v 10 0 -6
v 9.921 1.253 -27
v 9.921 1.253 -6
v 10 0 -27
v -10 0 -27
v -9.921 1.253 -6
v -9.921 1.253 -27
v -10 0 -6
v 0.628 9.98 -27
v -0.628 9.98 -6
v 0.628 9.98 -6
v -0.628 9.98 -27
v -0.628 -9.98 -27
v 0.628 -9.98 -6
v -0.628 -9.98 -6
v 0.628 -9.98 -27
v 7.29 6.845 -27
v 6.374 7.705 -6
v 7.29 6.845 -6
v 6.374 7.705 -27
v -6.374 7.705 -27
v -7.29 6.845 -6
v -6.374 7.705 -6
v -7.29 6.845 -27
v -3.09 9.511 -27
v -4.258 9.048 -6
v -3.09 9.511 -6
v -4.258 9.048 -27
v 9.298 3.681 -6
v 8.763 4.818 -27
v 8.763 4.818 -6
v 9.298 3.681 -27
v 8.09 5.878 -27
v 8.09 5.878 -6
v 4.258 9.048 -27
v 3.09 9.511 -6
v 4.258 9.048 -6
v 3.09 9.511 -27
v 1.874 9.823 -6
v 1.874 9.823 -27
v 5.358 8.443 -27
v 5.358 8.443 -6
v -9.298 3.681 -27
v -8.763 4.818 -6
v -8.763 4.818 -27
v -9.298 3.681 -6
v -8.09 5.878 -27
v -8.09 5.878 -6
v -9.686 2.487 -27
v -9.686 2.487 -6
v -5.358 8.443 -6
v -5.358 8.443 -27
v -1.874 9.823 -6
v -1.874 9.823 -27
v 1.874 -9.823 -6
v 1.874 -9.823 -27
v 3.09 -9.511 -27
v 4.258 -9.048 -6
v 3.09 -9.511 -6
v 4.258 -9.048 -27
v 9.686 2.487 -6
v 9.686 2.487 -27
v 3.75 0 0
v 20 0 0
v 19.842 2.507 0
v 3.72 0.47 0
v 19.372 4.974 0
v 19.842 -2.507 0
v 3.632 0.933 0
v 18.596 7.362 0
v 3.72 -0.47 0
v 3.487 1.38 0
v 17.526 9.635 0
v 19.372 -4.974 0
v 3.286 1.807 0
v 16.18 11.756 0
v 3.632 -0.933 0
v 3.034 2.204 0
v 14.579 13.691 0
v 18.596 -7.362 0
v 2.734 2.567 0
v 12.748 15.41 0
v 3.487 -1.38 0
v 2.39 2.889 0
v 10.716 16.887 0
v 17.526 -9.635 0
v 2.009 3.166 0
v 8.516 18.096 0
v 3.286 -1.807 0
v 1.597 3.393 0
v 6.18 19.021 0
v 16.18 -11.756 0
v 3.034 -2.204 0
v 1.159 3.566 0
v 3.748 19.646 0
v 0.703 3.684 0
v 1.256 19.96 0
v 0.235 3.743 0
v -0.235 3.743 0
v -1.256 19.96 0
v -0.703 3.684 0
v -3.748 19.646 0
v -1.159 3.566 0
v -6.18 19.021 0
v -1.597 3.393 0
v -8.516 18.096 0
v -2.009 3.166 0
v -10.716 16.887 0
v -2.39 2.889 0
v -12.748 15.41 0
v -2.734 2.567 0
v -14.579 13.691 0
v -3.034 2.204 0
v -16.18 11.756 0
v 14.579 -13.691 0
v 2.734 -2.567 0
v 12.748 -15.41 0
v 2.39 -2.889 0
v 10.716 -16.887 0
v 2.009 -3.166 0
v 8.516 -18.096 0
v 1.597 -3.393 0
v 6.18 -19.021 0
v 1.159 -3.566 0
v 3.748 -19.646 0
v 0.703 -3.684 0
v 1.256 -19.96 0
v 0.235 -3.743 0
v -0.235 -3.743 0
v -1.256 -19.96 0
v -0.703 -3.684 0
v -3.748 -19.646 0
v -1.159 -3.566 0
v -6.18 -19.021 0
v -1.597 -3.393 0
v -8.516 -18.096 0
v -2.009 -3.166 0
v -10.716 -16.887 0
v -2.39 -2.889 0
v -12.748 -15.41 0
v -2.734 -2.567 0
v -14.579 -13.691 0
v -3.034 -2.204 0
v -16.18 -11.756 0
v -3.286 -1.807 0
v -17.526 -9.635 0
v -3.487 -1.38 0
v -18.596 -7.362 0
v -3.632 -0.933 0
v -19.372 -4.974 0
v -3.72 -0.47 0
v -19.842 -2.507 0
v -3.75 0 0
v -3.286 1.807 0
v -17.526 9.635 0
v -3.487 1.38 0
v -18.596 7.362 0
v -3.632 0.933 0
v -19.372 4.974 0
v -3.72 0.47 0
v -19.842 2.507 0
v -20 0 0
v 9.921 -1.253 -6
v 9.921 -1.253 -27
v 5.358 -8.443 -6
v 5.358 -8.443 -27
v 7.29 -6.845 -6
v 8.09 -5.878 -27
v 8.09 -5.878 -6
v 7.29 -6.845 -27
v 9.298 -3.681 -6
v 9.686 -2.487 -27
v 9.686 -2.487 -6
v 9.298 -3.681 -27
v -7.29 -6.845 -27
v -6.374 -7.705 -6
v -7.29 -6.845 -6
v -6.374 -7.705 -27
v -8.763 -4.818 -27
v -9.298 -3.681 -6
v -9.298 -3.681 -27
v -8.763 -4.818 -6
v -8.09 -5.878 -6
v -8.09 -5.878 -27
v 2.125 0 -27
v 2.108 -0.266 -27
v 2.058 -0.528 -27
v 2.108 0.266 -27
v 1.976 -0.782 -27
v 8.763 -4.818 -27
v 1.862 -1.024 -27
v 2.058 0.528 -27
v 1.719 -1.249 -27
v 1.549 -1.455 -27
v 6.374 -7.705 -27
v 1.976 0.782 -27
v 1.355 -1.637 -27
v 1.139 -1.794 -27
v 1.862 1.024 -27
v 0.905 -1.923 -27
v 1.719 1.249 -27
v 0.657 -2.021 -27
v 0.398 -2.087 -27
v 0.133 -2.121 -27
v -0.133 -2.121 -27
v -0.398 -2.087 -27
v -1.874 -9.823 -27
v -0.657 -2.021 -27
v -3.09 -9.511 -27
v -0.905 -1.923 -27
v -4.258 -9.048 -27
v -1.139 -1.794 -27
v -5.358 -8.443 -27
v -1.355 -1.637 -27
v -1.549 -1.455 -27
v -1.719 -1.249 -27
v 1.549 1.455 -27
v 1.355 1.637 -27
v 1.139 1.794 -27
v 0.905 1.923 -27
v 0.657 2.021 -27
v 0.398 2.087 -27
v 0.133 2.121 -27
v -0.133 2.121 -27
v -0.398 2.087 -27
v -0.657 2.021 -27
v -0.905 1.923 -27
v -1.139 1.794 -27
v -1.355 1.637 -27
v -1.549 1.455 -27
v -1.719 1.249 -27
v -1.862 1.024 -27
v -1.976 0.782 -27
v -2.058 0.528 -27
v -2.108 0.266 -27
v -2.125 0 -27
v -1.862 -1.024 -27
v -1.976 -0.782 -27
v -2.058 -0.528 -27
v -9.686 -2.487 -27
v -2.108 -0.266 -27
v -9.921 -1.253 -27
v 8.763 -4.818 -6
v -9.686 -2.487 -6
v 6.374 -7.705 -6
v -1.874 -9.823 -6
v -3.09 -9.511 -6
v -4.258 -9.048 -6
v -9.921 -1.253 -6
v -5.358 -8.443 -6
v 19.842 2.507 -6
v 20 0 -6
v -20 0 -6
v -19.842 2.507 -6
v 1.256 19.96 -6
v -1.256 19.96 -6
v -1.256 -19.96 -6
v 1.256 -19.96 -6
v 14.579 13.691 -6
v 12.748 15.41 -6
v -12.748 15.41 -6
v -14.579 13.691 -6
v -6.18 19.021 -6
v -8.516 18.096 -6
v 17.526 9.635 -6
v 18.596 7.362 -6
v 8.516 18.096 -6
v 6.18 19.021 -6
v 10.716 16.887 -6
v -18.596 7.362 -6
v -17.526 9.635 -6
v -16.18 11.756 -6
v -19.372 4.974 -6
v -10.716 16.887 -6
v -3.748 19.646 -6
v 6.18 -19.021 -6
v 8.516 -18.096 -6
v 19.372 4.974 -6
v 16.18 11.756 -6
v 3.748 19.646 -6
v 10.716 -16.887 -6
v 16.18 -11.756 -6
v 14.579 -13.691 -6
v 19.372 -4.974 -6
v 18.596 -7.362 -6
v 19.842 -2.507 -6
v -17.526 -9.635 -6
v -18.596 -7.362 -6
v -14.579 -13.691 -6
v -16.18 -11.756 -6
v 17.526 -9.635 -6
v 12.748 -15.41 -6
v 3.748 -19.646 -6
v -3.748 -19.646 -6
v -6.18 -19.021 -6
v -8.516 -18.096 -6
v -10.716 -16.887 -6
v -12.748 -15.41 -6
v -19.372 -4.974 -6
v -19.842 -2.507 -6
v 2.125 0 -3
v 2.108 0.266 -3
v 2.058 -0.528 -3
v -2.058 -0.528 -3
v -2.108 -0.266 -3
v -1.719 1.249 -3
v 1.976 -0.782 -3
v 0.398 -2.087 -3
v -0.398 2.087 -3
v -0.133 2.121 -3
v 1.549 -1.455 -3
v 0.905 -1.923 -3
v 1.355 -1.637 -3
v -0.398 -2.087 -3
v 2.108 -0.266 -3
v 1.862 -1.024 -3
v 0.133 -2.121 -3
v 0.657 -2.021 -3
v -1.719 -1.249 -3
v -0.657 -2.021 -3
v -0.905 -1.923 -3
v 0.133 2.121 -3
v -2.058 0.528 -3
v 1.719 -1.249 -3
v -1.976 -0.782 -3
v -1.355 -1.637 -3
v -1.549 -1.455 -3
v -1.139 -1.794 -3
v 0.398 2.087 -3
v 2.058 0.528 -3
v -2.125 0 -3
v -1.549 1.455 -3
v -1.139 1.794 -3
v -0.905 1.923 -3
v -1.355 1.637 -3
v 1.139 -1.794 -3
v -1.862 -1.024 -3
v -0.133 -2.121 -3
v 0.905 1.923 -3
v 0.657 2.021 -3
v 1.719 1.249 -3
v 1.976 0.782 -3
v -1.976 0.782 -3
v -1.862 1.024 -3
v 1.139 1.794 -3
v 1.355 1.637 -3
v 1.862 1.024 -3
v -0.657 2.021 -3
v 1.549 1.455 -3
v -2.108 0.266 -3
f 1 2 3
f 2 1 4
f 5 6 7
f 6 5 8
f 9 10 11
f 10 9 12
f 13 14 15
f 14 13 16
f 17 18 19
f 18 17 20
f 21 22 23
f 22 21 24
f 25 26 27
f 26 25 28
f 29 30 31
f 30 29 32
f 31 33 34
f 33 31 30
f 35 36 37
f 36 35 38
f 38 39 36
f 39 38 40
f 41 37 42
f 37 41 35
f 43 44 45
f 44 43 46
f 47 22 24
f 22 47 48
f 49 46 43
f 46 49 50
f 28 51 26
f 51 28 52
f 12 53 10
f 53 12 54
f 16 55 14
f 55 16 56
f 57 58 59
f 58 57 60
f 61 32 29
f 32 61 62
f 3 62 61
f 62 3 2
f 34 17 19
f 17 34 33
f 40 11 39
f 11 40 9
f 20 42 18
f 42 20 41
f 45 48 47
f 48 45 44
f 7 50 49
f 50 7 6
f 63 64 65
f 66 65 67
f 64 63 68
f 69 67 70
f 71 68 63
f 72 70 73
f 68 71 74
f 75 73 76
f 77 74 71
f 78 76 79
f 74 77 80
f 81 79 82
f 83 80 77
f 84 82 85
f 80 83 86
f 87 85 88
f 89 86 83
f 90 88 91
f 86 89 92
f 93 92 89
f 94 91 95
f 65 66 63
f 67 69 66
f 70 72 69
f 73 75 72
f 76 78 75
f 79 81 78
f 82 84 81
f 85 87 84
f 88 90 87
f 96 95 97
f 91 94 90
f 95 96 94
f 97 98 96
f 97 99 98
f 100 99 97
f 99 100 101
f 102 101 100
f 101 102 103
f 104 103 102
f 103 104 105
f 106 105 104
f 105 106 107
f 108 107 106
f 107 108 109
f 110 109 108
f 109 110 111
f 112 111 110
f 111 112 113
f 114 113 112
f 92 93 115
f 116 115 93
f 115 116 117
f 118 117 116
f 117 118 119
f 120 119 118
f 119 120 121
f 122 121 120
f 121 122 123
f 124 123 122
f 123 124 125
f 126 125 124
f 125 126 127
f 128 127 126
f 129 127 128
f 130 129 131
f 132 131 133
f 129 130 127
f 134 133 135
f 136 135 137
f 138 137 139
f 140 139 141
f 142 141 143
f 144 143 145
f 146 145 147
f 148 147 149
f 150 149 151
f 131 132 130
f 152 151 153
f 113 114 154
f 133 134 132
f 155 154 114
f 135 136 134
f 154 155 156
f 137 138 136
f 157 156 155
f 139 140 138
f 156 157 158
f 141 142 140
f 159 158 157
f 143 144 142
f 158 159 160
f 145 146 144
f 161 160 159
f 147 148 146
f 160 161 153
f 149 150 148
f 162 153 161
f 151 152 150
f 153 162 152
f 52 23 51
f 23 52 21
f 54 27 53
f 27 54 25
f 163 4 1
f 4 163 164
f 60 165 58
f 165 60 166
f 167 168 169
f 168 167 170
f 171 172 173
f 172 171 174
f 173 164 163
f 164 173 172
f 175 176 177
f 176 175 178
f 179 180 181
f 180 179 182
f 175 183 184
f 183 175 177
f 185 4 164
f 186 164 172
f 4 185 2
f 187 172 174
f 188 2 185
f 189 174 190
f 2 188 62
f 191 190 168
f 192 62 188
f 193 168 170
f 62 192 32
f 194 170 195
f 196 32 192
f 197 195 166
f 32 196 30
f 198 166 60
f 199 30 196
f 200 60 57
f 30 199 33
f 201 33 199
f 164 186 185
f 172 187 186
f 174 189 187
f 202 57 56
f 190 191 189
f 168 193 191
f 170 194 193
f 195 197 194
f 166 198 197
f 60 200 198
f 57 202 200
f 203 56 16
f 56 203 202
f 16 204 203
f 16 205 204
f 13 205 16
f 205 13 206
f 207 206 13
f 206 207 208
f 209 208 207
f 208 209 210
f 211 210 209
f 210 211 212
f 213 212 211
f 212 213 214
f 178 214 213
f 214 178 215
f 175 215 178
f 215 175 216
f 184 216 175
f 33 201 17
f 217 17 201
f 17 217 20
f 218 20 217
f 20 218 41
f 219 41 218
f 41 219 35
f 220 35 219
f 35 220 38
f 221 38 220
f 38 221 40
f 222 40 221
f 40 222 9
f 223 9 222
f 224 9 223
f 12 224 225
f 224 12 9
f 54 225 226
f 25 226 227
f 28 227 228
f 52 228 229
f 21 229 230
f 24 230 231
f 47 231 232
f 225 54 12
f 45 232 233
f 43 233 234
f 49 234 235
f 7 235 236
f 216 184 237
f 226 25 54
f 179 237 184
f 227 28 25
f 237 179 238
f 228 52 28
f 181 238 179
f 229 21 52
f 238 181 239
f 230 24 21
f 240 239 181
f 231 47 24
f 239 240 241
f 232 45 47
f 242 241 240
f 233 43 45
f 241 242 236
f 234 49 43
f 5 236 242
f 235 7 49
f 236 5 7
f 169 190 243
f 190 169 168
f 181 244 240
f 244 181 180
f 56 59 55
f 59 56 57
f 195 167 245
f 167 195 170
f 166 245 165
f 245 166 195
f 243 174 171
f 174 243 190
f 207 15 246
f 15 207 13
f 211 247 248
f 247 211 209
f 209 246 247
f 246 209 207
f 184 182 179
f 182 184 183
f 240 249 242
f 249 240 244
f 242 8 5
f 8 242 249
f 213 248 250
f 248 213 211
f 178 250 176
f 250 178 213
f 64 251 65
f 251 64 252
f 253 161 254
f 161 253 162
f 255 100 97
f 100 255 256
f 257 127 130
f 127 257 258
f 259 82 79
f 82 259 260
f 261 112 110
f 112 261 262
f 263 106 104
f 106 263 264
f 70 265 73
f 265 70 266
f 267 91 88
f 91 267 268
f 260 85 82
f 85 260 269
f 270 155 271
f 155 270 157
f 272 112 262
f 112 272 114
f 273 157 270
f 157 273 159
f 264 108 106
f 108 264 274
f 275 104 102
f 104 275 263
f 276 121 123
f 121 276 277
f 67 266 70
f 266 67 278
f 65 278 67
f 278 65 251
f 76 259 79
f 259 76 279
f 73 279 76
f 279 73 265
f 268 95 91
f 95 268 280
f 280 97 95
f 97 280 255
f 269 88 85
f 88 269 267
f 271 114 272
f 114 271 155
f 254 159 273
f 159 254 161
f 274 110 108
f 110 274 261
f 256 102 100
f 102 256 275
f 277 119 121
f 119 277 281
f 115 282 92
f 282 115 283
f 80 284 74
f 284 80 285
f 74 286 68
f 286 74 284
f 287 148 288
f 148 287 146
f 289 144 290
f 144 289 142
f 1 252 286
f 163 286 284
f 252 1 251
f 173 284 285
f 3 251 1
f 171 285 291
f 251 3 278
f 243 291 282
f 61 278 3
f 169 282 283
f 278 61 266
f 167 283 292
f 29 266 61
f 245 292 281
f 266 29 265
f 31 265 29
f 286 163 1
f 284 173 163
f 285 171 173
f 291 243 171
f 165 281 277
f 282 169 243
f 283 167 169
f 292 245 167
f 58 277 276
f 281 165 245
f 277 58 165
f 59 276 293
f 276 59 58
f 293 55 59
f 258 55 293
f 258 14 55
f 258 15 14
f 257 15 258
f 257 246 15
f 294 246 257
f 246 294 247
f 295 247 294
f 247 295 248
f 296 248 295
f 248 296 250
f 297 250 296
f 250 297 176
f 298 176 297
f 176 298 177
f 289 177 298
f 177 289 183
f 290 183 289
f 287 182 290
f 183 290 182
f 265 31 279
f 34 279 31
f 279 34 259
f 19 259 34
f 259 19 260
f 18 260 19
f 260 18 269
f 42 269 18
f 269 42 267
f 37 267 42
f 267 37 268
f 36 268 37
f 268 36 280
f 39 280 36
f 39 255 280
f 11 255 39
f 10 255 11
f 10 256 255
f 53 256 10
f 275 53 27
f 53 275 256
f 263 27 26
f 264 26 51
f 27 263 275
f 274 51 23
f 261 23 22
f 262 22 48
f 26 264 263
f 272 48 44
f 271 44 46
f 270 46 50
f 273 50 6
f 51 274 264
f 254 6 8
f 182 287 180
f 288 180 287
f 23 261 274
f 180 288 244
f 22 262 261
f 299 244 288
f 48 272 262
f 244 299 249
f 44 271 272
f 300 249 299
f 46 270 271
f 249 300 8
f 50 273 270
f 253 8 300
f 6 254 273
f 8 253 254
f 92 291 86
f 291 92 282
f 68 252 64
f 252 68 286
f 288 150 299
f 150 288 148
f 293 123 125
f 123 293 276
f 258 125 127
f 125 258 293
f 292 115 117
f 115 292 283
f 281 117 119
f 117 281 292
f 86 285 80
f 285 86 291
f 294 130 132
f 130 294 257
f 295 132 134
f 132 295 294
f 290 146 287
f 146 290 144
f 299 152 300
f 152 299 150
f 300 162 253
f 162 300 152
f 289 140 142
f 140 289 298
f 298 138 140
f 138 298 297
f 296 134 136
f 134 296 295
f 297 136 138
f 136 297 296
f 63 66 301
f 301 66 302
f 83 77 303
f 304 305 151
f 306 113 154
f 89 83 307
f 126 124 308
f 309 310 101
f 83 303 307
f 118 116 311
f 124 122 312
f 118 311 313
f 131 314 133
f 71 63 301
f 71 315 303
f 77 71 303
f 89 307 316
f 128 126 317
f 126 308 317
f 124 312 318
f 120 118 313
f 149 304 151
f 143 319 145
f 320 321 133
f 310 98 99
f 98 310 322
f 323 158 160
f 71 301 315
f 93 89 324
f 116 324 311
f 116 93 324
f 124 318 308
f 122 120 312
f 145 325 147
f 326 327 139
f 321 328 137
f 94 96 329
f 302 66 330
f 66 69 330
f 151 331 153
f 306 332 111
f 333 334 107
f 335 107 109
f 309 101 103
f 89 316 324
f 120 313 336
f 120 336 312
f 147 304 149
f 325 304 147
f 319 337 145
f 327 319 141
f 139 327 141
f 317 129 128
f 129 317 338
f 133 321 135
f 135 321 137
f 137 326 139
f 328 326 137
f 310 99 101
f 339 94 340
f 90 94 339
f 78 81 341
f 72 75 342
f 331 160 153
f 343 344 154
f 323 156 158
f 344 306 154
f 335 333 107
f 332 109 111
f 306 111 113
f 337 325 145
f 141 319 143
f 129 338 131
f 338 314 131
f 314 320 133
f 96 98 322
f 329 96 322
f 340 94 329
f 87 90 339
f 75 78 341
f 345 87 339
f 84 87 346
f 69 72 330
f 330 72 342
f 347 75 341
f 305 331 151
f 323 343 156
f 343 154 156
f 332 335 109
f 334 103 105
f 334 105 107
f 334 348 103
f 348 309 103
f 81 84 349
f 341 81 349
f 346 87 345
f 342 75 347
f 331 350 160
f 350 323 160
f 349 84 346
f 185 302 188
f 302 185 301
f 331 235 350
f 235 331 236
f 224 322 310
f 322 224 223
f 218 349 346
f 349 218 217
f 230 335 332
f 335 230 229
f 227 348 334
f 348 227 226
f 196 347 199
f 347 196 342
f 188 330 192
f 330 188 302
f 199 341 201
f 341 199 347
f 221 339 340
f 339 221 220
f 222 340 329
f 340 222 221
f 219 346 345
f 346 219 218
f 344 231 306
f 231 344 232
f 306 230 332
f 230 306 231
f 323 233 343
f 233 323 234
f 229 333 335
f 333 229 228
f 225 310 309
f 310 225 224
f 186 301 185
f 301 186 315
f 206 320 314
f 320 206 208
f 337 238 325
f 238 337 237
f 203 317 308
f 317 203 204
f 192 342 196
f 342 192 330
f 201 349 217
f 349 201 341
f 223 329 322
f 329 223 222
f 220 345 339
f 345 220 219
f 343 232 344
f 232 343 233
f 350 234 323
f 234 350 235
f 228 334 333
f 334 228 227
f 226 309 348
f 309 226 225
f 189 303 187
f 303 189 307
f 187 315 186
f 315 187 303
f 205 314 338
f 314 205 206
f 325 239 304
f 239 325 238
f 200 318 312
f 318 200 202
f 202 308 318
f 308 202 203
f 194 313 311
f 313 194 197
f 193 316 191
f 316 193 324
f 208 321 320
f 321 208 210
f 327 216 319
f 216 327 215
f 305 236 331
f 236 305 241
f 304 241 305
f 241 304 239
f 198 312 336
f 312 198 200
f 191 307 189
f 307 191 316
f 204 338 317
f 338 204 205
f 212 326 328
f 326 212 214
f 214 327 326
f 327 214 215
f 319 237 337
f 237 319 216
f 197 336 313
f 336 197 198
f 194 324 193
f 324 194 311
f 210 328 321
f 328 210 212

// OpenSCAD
$fn = 50;


difference() {
	union() {
		translate(v = [0, 0, -27.0000000000]) {
			cylinder(h = 27, r = 10.0000000000);
		}
		translate(v = [0, 0, -6.0000000000]) {
			cylinder(h = 6, r = 20.0000000000);
		}
	}
	union() {
		translate(v = [0, 0, 0]) {
			rotate(a = [0, 0, 0]) {
				difference() {
					union() {
						#translate(v = [0, 0, -27.0000000000]) {
							cylinder(h = 27, r = 2.0000000000);
						}
						#translate(v = [0, 0, -3]) {
							cylinder(h = 3, r1 = 2.1250000000, r2 = 3.7500000000);
						}
						#translate(v = [0, 0, -27.0000000000]) {
							cylinder(h = 27, r = 2.1250000000);
						}
						#translate(v = [0, 0, -27.0000000000]) {
							cylinder(h = 27, r = 2.0000000000);
						}
					}
					union();
				}
			}
		}
	}
}
